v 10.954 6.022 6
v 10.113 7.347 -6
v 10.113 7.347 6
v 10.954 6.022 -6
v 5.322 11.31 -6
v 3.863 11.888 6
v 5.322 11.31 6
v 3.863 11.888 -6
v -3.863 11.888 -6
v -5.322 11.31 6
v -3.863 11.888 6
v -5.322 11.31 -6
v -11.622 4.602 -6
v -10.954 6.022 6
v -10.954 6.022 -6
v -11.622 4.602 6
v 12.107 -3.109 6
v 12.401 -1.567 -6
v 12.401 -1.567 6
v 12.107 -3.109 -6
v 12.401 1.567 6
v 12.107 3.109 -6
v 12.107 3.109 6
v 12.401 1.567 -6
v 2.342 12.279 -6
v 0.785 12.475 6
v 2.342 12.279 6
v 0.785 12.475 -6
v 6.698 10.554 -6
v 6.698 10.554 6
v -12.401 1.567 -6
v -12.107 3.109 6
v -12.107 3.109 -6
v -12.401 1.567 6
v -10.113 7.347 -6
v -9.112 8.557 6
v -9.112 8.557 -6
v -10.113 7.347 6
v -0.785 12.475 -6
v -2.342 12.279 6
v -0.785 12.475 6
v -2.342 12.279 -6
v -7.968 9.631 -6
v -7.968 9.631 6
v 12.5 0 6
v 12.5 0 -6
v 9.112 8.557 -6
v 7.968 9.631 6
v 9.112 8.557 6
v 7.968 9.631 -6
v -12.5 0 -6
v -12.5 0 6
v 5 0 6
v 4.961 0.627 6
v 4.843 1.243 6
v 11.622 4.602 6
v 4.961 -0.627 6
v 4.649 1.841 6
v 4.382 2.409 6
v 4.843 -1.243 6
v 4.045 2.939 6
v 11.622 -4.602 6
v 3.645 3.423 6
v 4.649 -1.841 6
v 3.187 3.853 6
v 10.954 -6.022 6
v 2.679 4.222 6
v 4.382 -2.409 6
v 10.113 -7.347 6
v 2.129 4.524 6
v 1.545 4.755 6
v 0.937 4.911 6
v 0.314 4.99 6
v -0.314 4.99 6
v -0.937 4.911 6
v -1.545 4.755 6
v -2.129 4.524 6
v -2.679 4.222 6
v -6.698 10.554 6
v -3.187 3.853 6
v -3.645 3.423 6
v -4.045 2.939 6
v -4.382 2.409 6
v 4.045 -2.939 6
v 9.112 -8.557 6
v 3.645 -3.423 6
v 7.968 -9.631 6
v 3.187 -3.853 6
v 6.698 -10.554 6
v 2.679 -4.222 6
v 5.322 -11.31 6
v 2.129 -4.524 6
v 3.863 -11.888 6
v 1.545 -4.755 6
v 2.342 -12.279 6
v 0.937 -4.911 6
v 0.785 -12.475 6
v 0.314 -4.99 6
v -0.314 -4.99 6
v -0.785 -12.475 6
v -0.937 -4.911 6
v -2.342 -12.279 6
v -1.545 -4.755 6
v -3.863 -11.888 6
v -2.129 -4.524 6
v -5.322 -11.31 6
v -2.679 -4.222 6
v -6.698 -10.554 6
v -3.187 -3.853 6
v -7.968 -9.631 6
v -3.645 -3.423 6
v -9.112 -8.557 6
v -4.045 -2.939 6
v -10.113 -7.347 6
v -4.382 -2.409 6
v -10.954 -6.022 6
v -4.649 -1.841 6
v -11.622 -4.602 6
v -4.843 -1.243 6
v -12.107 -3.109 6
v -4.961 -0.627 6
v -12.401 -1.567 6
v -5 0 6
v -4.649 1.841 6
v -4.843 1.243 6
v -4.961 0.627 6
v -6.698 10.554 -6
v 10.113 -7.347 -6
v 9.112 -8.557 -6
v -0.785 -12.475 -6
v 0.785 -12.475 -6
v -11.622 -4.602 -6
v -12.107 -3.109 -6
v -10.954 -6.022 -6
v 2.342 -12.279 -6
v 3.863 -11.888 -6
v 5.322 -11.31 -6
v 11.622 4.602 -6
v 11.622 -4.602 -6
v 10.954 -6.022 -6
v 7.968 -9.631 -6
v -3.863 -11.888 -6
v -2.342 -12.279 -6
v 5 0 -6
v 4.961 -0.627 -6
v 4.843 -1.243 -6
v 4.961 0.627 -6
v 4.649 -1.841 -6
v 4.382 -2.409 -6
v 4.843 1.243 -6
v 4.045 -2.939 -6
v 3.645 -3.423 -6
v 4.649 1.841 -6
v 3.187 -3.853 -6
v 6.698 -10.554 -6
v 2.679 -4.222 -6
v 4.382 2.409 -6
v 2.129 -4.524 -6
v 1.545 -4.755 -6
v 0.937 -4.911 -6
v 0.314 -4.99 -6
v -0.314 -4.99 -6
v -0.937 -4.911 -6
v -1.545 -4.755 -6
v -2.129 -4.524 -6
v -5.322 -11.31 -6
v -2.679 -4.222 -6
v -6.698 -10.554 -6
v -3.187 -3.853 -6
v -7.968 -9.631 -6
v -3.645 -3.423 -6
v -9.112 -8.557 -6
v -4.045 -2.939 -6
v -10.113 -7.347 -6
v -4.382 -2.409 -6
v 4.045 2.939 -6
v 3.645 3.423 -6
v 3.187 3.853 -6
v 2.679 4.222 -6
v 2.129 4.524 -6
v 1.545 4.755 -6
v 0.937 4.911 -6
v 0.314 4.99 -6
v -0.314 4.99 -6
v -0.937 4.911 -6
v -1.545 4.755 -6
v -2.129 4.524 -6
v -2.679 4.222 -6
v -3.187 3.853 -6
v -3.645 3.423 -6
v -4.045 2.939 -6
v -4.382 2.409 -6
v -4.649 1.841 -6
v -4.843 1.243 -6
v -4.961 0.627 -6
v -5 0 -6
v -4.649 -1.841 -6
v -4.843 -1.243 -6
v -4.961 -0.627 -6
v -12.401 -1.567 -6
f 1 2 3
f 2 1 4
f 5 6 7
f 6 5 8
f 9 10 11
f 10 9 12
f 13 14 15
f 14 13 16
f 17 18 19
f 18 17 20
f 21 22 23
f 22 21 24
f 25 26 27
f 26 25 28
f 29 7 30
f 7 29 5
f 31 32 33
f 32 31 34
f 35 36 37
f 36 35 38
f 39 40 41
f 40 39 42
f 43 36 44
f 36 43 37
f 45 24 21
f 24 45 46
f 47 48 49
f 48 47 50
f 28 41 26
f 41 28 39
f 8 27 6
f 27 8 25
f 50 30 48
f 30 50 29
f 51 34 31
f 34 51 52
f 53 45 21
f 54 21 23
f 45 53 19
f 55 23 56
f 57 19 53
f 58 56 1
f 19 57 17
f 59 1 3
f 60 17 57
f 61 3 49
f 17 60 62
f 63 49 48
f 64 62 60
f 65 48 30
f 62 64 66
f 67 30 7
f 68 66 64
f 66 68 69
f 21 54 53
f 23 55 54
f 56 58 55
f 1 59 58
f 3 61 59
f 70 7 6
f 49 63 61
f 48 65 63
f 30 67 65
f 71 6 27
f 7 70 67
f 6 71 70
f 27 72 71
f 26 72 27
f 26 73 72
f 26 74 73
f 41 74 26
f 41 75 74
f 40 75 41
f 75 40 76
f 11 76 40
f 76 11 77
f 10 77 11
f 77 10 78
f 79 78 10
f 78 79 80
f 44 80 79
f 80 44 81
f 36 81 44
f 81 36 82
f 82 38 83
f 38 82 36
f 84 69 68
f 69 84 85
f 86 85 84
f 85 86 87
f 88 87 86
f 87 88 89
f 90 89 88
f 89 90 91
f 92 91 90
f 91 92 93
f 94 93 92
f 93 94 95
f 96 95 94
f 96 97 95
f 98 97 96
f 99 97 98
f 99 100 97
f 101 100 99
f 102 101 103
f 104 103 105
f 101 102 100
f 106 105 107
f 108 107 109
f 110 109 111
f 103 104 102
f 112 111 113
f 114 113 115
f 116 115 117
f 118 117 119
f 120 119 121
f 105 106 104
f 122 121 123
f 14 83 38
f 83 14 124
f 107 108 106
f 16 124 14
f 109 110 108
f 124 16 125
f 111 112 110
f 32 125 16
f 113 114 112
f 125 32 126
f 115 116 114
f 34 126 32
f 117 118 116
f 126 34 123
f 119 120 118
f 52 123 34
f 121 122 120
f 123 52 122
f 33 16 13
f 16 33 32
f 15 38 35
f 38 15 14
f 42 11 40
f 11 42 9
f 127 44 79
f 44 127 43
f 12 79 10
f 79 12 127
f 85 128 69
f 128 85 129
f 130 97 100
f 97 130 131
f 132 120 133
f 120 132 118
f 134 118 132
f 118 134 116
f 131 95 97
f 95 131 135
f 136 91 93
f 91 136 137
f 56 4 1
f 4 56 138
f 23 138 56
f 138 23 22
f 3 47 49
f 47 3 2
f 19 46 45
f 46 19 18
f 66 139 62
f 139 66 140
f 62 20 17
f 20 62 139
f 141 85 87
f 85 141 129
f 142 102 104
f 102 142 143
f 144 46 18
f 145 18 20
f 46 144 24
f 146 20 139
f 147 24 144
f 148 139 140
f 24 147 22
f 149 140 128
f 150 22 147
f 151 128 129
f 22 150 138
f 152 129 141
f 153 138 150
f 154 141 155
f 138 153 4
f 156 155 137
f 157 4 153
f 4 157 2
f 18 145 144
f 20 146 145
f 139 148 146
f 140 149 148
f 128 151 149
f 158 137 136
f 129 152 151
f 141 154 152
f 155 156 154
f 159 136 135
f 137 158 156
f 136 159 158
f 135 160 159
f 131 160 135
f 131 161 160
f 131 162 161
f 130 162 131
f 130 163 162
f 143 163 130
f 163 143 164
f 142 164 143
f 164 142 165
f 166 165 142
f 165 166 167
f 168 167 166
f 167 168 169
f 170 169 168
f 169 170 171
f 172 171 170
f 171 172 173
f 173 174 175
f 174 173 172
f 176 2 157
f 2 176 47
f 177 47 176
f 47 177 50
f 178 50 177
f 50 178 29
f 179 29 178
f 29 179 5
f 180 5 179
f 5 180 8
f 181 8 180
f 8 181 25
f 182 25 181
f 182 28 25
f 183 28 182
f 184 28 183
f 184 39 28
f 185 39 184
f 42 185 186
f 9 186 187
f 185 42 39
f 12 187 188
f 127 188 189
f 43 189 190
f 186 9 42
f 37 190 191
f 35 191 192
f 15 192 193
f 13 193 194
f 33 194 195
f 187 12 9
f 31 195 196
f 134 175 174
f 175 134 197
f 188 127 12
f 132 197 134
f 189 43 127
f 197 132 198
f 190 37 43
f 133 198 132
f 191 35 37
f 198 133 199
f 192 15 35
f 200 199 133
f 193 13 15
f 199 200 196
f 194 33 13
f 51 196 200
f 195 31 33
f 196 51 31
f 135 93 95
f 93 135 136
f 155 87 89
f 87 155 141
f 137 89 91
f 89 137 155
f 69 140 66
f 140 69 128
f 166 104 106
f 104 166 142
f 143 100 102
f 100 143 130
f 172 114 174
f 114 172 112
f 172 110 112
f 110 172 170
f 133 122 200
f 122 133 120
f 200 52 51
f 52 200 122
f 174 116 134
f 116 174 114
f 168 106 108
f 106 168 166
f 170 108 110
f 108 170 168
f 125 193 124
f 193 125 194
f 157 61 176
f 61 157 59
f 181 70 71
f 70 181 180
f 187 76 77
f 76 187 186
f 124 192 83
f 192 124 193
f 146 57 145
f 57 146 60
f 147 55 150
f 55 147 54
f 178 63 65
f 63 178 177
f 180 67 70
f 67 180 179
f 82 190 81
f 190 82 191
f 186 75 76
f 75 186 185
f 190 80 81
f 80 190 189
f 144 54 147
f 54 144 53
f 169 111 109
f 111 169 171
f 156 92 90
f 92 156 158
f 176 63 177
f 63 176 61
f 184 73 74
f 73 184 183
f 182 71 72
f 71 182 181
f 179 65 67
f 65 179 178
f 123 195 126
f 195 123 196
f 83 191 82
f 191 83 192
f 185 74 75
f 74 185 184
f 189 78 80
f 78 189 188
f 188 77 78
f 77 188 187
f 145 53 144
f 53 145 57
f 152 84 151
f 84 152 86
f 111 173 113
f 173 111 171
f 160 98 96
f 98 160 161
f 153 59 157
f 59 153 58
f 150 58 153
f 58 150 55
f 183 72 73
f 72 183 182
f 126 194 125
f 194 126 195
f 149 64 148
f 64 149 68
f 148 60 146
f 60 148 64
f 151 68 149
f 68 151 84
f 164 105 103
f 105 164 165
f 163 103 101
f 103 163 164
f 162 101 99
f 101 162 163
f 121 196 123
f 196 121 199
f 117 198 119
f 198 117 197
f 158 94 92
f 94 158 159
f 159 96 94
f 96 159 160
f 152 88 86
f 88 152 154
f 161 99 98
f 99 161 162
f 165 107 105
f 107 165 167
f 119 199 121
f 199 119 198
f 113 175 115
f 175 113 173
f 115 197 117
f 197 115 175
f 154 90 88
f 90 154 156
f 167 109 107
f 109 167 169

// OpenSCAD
$fn = 50;


difference() {
	union() {
		translate(v = [0, 0, -6.0000000000]) {
			cylinder(h = 12, r = 12.5000000000);
		}
	}
	union() {
		translate(v = [0, 0, -100.0000000000]) {
			cylinder(h = 200, r = 5);
		}
	}
}
